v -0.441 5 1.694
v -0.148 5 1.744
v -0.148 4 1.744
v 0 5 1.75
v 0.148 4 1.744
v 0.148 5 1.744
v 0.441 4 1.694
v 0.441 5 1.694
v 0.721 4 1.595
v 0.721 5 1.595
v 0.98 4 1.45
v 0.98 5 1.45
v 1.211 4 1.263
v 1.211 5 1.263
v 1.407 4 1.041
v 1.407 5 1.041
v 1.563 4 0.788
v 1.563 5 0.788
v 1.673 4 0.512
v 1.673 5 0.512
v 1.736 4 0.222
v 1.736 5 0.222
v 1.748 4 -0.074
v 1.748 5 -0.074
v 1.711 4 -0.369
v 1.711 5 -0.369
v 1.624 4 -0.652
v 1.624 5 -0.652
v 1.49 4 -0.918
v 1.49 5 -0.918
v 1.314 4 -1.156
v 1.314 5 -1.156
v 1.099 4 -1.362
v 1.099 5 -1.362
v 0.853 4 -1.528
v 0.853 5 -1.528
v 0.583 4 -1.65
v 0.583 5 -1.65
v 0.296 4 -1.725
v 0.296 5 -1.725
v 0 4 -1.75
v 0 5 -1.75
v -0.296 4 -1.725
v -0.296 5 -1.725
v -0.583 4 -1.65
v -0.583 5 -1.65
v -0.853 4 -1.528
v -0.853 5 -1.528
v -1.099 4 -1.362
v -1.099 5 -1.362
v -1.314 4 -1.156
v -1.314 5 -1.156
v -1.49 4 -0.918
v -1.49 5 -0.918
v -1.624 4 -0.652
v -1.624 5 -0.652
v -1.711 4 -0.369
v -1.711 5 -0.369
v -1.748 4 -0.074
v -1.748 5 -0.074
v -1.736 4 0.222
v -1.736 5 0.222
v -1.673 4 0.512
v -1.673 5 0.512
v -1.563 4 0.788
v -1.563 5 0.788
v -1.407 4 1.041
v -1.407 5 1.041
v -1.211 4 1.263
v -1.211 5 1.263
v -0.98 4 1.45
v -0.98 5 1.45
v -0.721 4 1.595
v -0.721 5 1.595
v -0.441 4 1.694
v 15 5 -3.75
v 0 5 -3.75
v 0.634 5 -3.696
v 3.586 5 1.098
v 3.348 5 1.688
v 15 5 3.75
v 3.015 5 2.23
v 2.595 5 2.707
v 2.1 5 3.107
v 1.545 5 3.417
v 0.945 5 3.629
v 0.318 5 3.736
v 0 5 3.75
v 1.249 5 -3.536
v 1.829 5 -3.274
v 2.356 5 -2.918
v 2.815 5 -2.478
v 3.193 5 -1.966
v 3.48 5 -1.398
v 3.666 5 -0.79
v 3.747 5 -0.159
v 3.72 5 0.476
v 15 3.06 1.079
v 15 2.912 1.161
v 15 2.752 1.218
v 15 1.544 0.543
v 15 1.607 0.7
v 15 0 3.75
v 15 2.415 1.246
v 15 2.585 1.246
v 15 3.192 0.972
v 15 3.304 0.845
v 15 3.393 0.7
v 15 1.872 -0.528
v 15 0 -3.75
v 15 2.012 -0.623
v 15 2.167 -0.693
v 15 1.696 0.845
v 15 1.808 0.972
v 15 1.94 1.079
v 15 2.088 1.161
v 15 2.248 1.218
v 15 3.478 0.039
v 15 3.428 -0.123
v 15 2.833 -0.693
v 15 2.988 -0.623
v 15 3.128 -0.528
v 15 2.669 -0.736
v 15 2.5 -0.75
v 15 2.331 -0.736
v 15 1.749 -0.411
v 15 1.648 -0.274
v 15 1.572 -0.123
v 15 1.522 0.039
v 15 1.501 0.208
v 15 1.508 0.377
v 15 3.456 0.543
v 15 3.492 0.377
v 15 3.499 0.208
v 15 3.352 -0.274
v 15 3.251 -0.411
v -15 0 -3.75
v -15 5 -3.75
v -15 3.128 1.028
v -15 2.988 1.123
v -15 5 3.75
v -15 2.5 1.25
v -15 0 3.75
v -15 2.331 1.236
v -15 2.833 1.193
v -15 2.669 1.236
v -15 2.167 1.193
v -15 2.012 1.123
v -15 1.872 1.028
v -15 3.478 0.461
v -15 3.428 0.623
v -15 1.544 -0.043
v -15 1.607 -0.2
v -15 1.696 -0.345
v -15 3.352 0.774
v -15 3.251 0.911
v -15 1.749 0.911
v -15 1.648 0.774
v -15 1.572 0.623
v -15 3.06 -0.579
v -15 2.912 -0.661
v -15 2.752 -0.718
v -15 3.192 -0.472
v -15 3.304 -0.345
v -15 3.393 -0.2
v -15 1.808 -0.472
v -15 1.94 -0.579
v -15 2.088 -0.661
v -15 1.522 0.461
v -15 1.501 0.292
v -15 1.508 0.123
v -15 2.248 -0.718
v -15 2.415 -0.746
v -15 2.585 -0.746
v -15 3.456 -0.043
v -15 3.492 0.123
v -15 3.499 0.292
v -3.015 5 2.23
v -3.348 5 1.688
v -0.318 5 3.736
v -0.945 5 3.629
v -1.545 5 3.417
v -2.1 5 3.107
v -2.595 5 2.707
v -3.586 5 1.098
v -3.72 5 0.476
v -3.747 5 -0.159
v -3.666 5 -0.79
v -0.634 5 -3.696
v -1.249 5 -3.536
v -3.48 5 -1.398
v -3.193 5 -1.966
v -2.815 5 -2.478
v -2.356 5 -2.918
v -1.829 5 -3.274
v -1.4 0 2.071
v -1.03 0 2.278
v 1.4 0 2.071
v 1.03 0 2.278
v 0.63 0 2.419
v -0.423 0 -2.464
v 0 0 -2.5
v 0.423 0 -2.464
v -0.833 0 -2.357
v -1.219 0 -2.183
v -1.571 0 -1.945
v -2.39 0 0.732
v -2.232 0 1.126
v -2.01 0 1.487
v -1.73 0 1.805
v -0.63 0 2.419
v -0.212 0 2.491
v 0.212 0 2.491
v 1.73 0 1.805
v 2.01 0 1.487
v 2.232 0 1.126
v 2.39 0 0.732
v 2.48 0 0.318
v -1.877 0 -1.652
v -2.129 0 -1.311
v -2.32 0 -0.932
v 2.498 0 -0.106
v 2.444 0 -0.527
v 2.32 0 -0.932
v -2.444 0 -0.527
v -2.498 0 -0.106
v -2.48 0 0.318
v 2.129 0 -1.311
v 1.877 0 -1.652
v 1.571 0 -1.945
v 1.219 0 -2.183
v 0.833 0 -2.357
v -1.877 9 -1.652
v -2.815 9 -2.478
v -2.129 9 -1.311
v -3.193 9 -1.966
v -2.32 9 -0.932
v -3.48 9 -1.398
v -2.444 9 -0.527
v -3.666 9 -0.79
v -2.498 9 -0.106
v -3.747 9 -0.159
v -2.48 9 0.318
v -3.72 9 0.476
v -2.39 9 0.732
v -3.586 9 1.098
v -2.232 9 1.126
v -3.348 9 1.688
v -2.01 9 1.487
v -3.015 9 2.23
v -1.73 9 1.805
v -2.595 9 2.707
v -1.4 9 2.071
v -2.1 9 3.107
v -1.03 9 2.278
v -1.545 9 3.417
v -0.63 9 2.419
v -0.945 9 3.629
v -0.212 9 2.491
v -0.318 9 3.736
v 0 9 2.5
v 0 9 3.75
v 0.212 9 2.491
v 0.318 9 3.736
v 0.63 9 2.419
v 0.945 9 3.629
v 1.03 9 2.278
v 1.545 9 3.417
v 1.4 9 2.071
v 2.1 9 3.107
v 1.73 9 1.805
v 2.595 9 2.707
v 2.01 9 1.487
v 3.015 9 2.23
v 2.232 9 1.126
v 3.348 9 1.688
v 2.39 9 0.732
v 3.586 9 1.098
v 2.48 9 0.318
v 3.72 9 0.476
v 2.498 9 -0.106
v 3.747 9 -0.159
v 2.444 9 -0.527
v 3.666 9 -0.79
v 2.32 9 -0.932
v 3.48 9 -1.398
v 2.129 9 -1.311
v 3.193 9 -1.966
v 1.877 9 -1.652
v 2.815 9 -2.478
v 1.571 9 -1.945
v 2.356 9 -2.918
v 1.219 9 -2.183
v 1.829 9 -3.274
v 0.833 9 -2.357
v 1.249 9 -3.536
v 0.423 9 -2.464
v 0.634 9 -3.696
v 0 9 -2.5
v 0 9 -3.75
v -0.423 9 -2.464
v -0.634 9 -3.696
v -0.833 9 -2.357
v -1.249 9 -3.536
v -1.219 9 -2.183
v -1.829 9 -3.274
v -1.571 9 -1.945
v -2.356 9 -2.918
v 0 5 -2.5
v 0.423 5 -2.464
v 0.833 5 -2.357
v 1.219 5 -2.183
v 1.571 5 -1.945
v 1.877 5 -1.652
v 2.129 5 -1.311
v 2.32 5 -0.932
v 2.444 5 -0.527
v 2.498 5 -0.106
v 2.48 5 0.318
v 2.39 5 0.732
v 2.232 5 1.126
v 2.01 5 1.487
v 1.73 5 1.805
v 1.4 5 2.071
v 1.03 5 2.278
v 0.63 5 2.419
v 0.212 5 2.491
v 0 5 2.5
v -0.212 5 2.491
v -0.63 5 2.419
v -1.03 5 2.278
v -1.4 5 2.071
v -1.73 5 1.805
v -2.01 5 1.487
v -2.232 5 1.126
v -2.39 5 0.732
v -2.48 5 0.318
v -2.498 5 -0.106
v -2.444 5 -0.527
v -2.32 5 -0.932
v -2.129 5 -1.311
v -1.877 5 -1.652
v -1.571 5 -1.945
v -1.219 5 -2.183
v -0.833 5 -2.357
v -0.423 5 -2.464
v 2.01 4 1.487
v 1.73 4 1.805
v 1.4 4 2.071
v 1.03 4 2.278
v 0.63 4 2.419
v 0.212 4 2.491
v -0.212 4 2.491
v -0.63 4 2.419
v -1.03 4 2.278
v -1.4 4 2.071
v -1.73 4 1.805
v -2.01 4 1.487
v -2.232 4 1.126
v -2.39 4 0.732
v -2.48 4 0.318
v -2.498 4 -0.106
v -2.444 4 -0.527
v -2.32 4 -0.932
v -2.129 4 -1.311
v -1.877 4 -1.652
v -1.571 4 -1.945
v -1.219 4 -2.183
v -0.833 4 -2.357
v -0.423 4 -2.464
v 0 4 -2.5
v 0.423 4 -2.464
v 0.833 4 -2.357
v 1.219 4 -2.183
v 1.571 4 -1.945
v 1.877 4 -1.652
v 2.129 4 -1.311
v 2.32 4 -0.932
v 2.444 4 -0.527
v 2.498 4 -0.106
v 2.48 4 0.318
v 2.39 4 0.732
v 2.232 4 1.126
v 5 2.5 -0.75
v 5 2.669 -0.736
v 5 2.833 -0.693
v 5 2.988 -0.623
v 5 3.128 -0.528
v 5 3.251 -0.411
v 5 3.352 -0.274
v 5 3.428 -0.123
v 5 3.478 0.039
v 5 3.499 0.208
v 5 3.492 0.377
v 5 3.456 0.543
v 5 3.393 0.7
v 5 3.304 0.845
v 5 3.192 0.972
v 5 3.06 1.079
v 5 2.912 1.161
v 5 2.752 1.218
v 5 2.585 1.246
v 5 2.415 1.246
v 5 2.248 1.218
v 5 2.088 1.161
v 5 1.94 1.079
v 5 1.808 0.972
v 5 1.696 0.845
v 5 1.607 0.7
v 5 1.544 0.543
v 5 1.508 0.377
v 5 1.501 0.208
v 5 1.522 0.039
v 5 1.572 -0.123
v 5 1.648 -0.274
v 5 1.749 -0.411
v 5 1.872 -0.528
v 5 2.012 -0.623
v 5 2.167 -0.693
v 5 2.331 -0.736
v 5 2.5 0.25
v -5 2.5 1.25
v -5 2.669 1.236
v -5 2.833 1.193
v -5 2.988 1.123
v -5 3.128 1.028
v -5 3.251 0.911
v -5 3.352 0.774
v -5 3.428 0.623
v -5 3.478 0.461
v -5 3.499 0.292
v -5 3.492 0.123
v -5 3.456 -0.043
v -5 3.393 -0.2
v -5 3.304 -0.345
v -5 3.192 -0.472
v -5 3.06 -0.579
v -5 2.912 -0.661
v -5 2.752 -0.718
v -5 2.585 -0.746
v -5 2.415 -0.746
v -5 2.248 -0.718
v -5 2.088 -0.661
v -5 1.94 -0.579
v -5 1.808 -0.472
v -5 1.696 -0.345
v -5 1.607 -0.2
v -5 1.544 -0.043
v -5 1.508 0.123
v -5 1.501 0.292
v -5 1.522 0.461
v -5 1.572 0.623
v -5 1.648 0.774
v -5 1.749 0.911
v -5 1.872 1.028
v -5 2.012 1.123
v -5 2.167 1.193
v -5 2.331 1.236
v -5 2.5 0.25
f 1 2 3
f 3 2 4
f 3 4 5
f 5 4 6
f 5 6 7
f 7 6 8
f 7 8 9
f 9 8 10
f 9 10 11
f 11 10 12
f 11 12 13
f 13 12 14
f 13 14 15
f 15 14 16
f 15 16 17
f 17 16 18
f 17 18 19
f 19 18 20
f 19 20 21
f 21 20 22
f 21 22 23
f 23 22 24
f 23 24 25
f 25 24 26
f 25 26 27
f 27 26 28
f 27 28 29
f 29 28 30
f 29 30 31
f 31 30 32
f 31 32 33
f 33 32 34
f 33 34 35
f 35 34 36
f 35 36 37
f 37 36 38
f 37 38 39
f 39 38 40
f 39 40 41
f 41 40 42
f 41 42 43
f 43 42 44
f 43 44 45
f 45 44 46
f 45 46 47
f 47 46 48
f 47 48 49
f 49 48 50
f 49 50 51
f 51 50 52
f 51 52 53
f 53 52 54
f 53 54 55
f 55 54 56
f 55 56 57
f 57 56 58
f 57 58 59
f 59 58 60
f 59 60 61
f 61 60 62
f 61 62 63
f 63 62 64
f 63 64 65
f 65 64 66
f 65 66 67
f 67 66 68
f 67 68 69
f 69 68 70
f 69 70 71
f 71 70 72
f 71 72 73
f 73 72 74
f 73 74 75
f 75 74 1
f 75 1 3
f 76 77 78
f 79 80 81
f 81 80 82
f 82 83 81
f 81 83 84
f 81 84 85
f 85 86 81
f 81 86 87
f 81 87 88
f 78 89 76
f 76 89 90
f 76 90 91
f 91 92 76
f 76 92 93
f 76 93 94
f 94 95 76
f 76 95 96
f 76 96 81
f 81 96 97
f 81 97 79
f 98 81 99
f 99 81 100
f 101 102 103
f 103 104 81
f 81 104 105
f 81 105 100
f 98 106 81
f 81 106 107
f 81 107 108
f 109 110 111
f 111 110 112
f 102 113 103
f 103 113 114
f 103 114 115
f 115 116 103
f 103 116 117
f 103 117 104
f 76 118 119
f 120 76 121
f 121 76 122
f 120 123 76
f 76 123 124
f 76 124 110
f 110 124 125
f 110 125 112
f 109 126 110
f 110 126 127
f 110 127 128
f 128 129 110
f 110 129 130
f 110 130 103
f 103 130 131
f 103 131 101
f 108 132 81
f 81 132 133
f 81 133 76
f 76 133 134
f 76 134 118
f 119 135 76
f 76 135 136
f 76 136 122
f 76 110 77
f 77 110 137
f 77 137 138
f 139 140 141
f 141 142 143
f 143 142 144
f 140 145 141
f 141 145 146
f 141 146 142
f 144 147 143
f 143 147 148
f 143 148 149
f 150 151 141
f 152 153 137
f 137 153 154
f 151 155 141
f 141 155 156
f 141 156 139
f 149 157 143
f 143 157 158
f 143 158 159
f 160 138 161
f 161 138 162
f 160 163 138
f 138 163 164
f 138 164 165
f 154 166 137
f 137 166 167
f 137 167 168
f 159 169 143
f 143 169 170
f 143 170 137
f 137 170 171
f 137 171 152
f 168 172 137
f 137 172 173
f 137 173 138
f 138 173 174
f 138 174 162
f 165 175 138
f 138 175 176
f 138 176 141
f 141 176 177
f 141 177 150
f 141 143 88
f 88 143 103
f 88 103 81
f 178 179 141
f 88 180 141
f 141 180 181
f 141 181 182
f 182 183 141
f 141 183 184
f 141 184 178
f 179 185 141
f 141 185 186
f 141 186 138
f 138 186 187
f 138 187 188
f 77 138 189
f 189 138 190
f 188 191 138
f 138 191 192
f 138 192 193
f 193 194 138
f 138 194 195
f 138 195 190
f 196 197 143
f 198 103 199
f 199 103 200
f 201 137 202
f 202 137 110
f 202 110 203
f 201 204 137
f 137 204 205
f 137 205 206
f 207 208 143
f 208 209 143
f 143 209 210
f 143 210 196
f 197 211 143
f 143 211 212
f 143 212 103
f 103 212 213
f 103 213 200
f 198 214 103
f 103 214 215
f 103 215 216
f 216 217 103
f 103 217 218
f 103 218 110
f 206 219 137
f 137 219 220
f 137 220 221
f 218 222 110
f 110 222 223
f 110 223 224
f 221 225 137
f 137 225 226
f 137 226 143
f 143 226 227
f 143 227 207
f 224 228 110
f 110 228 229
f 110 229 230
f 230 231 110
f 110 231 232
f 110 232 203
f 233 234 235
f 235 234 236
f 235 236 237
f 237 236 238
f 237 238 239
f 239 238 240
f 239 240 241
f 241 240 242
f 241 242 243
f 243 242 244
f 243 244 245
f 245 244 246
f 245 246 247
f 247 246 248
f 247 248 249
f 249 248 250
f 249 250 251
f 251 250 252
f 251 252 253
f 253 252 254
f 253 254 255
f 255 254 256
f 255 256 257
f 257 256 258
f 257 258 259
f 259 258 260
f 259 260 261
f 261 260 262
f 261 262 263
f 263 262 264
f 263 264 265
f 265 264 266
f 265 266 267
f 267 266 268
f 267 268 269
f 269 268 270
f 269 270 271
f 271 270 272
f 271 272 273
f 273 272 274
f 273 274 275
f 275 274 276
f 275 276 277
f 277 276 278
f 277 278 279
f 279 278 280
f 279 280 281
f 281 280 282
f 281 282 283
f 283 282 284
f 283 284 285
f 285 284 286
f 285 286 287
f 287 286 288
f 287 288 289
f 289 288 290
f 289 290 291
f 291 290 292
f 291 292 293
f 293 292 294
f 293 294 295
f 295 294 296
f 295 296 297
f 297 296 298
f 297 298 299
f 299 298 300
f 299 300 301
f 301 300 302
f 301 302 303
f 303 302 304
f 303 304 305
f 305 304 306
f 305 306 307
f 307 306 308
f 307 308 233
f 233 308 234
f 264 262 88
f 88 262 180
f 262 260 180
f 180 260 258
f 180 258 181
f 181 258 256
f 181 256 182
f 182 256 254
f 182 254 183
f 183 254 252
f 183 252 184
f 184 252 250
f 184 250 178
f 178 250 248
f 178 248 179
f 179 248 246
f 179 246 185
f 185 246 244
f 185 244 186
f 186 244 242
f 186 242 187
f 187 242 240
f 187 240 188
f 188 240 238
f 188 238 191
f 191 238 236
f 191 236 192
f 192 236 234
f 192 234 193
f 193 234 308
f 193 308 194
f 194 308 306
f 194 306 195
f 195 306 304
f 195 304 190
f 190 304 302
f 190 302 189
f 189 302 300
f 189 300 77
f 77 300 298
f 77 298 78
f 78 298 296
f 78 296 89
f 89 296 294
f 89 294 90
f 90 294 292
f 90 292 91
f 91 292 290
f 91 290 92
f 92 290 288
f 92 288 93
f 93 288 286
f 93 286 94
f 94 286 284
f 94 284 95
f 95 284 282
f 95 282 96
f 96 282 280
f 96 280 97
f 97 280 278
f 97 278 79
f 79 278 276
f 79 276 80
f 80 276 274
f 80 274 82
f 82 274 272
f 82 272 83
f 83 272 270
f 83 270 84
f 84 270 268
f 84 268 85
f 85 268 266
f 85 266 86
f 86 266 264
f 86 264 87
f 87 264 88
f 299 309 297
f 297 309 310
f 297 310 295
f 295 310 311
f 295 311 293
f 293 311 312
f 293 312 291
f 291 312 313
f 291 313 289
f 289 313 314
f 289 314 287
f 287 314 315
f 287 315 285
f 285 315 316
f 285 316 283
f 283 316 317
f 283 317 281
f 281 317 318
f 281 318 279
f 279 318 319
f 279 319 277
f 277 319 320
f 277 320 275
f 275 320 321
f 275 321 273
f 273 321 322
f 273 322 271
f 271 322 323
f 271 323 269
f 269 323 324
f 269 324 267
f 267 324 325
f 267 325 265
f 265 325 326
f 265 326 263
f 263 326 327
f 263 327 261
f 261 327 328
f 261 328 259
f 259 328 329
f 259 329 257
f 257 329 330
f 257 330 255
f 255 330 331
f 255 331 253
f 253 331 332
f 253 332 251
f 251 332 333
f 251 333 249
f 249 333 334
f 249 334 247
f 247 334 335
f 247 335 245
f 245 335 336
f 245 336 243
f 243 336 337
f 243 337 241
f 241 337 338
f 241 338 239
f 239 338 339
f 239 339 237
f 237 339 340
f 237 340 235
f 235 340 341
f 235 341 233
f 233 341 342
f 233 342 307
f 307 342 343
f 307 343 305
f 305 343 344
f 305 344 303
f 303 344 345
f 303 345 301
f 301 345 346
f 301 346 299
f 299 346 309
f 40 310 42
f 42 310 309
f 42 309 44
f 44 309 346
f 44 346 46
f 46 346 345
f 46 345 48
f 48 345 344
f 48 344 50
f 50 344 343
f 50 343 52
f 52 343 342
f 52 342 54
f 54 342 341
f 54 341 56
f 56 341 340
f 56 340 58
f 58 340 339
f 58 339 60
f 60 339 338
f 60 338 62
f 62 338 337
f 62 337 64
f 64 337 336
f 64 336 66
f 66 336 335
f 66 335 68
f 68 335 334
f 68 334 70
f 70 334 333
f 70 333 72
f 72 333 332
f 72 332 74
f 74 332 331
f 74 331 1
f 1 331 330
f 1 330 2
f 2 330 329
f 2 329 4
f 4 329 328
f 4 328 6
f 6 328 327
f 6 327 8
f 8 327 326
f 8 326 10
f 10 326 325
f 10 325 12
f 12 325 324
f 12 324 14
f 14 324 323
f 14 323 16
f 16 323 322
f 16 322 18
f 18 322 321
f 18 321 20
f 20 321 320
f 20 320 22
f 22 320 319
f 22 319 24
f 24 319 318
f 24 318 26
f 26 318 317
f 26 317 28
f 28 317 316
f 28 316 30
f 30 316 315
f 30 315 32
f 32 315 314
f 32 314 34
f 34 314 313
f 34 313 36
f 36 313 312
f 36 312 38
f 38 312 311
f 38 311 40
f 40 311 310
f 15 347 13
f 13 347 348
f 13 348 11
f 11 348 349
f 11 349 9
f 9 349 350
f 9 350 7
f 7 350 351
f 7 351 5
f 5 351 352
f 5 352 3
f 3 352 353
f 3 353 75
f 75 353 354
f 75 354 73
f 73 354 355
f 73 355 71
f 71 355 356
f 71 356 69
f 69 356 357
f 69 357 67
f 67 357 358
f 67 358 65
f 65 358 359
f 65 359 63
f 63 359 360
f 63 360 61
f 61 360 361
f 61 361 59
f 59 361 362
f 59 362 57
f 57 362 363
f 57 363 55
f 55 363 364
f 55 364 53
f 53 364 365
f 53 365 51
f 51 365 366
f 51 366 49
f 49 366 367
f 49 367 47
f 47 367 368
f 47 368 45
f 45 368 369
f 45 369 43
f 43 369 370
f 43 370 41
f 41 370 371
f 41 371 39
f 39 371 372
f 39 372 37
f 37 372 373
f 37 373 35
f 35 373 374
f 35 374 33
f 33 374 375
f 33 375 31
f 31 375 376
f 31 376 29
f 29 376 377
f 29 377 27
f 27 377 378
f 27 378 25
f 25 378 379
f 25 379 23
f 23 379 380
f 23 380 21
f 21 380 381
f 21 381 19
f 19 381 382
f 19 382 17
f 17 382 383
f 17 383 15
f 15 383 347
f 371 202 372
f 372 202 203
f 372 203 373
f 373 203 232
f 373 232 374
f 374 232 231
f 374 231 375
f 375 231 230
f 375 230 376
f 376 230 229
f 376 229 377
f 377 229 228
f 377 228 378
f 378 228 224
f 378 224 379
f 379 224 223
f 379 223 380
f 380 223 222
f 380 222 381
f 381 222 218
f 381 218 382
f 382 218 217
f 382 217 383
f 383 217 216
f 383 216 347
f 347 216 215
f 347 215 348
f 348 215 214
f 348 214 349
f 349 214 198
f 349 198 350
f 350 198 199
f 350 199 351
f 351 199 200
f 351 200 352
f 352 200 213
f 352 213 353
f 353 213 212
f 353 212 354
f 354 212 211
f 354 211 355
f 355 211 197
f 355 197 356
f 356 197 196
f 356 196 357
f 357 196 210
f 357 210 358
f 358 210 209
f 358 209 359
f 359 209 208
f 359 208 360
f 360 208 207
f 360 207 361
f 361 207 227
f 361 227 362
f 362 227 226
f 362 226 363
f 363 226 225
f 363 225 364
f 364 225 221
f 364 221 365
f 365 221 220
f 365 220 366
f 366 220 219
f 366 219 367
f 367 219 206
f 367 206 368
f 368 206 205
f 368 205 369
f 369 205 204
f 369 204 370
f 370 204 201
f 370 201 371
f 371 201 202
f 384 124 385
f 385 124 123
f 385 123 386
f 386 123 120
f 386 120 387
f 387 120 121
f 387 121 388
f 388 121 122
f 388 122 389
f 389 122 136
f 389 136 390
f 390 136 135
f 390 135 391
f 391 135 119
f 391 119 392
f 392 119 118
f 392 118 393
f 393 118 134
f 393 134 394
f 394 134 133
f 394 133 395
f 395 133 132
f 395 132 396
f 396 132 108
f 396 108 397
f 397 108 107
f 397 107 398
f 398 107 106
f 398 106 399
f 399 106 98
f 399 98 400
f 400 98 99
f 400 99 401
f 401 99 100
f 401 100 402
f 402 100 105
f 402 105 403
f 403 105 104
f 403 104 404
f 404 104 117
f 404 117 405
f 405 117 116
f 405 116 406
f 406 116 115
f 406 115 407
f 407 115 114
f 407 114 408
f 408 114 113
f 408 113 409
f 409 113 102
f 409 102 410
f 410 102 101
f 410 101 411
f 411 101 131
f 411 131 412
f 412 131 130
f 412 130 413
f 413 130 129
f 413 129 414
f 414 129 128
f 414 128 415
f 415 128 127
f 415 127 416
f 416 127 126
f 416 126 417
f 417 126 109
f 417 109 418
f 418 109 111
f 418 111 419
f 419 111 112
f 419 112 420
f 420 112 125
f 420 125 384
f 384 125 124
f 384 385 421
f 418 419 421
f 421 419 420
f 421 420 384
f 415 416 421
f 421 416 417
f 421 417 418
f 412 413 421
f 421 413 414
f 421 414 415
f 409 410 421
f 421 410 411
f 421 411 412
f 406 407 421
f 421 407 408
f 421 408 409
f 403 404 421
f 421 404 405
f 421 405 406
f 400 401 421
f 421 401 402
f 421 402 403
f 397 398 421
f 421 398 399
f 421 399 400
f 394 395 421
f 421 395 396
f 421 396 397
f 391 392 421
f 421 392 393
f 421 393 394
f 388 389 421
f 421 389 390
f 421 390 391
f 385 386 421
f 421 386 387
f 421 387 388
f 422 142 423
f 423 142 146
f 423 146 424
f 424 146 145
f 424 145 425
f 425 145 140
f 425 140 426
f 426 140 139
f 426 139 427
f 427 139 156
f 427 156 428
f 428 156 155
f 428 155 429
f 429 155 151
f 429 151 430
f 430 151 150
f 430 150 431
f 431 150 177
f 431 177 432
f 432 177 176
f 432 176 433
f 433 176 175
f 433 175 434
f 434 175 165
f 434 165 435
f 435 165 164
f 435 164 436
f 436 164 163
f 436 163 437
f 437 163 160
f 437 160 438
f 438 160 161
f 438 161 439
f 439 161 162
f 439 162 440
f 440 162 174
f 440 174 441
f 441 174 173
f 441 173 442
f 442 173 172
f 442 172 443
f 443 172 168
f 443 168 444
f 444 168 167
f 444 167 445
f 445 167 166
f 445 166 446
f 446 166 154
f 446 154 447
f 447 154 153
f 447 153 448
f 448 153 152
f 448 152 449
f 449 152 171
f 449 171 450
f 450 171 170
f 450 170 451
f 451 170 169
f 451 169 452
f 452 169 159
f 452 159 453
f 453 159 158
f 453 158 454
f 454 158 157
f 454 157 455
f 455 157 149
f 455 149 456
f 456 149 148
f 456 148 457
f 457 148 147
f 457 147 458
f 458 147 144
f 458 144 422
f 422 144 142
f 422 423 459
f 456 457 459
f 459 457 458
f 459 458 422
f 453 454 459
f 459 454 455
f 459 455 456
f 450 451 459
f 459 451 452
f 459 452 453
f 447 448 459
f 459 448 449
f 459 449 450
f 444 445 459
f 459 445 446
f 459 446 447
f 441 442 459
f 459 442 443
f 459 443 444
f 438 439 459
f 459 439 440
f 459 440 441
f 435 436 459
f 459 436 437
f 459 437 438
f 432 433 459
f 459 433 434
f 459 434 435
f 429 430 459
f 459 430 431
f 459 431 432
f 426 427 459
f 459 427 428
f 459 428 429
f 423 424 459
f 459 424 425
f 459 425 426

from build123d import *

# Parameters (mm, degrees)
SKETCH1_W           = 30
SKETCH1_H           = 7.5
BOSS_EXTRUDE1_DEPTH = 5
SKETCH2_R           = 3.75
SKETCH2_R_2         = 2.5
BOSS_EXTRUDE2_DEPTH = 4
SKETCH3_R           = 1.75
CUT_EXTRUDE1_DEPTH  = 18.890290663
SKETCH4_R           = 2.5
CUT_EXTRUDE3_DEPTH  = 4
SKETCH5_R           = 1
CUT_EXTRUDE4_DEPTH  = 10
CUT_EXTRUDE5_START  = -10
SKETCH6_R           = 1
CUT_EXTRUDE5_DEPTH  = 10


with BuildPart() as part:
    # Sketch1 → Boss-Extrude1 (new body)
    with BuildSketch(Plane(origin=(0, 0, 0), x_dir=(1, 0, 0), z_dir=(0, 1, 0))):
        Rectangle(SKETCH1_W, SKETCH1_H)
    extrude(amount=BOSS_EXTRUDE1_DEPTH)

    # Sketch2 → Boss-Extrude2 (add)
    with BuildSketch(Plane(origin=(0, 5, 0), x_dir=(1, 0, 0), z_dir=(0, 1, 0))):
        with Locations(Location((0, 0, 0), (0, 0, 270))):
            Circle(SKETCH2_R)
        with Locations(Location((0, 0, 0), (0, 0, 270))):
            Circle(SKETCH2_R_2, mode=Mode.SUBTRACT)
    extrude(amount=BOSS_EXTRUDE2_DEPTH)

    # Sketch3 → Cut-Extrude1 (cut, through all)
    with BuildSketch(Plane.XZ):
        with Locations(Location((0, 0, 0), (0, 0, 270))):
            Circle(SKETCH3_R)
    extrude(amount=-CUT_EXTRUDE1_DEPTH, mode=Mode.SUBTRACT)

    # Sketch4 → Cut-Extrude3 (cut)
    with BuildSketch(Plane(origin=(0, 0, 0), x_dir=(-1, 0, 0), z_dir=(0, -1, 0))):
        with Locations(Location((0, 0, 0), (0, 0, 270))):
            Circle(SKETCH4_R)
    extrude(amount=-CUT_EXTRUDE3_DEPTH, mode=Mode.SUBTRACT)

    # Sketch5 → Cut-Extrude4 (cut)
    with BuildSketch(Plane(origin=(15, 0, 0), x_dir=(0, 0, -1), z_dir=(1, 0, 0))):
        with Locations((-0.25, 2.5)):
            Circle(SKETCH5_R)
    extrude(amount=-CUT_EXTRUDE4_DEPTH, mode=Mode.SUBTRACT)

    # Sketch6 → Cut-Extrude5 (cut)
    with BuildSketch(Plane.ZY.offset(15).offset(CUT_EXTRUDE5_START)):
        with Locations(Location((0.25, 2.5, 0), (0, 0, 180))):
            Circle(SKETCH6_R)
    extrude(amount=CUT_EXTRUDE5_DEPTH, mode=Mode.SUBTRACT)


solid = part.part
